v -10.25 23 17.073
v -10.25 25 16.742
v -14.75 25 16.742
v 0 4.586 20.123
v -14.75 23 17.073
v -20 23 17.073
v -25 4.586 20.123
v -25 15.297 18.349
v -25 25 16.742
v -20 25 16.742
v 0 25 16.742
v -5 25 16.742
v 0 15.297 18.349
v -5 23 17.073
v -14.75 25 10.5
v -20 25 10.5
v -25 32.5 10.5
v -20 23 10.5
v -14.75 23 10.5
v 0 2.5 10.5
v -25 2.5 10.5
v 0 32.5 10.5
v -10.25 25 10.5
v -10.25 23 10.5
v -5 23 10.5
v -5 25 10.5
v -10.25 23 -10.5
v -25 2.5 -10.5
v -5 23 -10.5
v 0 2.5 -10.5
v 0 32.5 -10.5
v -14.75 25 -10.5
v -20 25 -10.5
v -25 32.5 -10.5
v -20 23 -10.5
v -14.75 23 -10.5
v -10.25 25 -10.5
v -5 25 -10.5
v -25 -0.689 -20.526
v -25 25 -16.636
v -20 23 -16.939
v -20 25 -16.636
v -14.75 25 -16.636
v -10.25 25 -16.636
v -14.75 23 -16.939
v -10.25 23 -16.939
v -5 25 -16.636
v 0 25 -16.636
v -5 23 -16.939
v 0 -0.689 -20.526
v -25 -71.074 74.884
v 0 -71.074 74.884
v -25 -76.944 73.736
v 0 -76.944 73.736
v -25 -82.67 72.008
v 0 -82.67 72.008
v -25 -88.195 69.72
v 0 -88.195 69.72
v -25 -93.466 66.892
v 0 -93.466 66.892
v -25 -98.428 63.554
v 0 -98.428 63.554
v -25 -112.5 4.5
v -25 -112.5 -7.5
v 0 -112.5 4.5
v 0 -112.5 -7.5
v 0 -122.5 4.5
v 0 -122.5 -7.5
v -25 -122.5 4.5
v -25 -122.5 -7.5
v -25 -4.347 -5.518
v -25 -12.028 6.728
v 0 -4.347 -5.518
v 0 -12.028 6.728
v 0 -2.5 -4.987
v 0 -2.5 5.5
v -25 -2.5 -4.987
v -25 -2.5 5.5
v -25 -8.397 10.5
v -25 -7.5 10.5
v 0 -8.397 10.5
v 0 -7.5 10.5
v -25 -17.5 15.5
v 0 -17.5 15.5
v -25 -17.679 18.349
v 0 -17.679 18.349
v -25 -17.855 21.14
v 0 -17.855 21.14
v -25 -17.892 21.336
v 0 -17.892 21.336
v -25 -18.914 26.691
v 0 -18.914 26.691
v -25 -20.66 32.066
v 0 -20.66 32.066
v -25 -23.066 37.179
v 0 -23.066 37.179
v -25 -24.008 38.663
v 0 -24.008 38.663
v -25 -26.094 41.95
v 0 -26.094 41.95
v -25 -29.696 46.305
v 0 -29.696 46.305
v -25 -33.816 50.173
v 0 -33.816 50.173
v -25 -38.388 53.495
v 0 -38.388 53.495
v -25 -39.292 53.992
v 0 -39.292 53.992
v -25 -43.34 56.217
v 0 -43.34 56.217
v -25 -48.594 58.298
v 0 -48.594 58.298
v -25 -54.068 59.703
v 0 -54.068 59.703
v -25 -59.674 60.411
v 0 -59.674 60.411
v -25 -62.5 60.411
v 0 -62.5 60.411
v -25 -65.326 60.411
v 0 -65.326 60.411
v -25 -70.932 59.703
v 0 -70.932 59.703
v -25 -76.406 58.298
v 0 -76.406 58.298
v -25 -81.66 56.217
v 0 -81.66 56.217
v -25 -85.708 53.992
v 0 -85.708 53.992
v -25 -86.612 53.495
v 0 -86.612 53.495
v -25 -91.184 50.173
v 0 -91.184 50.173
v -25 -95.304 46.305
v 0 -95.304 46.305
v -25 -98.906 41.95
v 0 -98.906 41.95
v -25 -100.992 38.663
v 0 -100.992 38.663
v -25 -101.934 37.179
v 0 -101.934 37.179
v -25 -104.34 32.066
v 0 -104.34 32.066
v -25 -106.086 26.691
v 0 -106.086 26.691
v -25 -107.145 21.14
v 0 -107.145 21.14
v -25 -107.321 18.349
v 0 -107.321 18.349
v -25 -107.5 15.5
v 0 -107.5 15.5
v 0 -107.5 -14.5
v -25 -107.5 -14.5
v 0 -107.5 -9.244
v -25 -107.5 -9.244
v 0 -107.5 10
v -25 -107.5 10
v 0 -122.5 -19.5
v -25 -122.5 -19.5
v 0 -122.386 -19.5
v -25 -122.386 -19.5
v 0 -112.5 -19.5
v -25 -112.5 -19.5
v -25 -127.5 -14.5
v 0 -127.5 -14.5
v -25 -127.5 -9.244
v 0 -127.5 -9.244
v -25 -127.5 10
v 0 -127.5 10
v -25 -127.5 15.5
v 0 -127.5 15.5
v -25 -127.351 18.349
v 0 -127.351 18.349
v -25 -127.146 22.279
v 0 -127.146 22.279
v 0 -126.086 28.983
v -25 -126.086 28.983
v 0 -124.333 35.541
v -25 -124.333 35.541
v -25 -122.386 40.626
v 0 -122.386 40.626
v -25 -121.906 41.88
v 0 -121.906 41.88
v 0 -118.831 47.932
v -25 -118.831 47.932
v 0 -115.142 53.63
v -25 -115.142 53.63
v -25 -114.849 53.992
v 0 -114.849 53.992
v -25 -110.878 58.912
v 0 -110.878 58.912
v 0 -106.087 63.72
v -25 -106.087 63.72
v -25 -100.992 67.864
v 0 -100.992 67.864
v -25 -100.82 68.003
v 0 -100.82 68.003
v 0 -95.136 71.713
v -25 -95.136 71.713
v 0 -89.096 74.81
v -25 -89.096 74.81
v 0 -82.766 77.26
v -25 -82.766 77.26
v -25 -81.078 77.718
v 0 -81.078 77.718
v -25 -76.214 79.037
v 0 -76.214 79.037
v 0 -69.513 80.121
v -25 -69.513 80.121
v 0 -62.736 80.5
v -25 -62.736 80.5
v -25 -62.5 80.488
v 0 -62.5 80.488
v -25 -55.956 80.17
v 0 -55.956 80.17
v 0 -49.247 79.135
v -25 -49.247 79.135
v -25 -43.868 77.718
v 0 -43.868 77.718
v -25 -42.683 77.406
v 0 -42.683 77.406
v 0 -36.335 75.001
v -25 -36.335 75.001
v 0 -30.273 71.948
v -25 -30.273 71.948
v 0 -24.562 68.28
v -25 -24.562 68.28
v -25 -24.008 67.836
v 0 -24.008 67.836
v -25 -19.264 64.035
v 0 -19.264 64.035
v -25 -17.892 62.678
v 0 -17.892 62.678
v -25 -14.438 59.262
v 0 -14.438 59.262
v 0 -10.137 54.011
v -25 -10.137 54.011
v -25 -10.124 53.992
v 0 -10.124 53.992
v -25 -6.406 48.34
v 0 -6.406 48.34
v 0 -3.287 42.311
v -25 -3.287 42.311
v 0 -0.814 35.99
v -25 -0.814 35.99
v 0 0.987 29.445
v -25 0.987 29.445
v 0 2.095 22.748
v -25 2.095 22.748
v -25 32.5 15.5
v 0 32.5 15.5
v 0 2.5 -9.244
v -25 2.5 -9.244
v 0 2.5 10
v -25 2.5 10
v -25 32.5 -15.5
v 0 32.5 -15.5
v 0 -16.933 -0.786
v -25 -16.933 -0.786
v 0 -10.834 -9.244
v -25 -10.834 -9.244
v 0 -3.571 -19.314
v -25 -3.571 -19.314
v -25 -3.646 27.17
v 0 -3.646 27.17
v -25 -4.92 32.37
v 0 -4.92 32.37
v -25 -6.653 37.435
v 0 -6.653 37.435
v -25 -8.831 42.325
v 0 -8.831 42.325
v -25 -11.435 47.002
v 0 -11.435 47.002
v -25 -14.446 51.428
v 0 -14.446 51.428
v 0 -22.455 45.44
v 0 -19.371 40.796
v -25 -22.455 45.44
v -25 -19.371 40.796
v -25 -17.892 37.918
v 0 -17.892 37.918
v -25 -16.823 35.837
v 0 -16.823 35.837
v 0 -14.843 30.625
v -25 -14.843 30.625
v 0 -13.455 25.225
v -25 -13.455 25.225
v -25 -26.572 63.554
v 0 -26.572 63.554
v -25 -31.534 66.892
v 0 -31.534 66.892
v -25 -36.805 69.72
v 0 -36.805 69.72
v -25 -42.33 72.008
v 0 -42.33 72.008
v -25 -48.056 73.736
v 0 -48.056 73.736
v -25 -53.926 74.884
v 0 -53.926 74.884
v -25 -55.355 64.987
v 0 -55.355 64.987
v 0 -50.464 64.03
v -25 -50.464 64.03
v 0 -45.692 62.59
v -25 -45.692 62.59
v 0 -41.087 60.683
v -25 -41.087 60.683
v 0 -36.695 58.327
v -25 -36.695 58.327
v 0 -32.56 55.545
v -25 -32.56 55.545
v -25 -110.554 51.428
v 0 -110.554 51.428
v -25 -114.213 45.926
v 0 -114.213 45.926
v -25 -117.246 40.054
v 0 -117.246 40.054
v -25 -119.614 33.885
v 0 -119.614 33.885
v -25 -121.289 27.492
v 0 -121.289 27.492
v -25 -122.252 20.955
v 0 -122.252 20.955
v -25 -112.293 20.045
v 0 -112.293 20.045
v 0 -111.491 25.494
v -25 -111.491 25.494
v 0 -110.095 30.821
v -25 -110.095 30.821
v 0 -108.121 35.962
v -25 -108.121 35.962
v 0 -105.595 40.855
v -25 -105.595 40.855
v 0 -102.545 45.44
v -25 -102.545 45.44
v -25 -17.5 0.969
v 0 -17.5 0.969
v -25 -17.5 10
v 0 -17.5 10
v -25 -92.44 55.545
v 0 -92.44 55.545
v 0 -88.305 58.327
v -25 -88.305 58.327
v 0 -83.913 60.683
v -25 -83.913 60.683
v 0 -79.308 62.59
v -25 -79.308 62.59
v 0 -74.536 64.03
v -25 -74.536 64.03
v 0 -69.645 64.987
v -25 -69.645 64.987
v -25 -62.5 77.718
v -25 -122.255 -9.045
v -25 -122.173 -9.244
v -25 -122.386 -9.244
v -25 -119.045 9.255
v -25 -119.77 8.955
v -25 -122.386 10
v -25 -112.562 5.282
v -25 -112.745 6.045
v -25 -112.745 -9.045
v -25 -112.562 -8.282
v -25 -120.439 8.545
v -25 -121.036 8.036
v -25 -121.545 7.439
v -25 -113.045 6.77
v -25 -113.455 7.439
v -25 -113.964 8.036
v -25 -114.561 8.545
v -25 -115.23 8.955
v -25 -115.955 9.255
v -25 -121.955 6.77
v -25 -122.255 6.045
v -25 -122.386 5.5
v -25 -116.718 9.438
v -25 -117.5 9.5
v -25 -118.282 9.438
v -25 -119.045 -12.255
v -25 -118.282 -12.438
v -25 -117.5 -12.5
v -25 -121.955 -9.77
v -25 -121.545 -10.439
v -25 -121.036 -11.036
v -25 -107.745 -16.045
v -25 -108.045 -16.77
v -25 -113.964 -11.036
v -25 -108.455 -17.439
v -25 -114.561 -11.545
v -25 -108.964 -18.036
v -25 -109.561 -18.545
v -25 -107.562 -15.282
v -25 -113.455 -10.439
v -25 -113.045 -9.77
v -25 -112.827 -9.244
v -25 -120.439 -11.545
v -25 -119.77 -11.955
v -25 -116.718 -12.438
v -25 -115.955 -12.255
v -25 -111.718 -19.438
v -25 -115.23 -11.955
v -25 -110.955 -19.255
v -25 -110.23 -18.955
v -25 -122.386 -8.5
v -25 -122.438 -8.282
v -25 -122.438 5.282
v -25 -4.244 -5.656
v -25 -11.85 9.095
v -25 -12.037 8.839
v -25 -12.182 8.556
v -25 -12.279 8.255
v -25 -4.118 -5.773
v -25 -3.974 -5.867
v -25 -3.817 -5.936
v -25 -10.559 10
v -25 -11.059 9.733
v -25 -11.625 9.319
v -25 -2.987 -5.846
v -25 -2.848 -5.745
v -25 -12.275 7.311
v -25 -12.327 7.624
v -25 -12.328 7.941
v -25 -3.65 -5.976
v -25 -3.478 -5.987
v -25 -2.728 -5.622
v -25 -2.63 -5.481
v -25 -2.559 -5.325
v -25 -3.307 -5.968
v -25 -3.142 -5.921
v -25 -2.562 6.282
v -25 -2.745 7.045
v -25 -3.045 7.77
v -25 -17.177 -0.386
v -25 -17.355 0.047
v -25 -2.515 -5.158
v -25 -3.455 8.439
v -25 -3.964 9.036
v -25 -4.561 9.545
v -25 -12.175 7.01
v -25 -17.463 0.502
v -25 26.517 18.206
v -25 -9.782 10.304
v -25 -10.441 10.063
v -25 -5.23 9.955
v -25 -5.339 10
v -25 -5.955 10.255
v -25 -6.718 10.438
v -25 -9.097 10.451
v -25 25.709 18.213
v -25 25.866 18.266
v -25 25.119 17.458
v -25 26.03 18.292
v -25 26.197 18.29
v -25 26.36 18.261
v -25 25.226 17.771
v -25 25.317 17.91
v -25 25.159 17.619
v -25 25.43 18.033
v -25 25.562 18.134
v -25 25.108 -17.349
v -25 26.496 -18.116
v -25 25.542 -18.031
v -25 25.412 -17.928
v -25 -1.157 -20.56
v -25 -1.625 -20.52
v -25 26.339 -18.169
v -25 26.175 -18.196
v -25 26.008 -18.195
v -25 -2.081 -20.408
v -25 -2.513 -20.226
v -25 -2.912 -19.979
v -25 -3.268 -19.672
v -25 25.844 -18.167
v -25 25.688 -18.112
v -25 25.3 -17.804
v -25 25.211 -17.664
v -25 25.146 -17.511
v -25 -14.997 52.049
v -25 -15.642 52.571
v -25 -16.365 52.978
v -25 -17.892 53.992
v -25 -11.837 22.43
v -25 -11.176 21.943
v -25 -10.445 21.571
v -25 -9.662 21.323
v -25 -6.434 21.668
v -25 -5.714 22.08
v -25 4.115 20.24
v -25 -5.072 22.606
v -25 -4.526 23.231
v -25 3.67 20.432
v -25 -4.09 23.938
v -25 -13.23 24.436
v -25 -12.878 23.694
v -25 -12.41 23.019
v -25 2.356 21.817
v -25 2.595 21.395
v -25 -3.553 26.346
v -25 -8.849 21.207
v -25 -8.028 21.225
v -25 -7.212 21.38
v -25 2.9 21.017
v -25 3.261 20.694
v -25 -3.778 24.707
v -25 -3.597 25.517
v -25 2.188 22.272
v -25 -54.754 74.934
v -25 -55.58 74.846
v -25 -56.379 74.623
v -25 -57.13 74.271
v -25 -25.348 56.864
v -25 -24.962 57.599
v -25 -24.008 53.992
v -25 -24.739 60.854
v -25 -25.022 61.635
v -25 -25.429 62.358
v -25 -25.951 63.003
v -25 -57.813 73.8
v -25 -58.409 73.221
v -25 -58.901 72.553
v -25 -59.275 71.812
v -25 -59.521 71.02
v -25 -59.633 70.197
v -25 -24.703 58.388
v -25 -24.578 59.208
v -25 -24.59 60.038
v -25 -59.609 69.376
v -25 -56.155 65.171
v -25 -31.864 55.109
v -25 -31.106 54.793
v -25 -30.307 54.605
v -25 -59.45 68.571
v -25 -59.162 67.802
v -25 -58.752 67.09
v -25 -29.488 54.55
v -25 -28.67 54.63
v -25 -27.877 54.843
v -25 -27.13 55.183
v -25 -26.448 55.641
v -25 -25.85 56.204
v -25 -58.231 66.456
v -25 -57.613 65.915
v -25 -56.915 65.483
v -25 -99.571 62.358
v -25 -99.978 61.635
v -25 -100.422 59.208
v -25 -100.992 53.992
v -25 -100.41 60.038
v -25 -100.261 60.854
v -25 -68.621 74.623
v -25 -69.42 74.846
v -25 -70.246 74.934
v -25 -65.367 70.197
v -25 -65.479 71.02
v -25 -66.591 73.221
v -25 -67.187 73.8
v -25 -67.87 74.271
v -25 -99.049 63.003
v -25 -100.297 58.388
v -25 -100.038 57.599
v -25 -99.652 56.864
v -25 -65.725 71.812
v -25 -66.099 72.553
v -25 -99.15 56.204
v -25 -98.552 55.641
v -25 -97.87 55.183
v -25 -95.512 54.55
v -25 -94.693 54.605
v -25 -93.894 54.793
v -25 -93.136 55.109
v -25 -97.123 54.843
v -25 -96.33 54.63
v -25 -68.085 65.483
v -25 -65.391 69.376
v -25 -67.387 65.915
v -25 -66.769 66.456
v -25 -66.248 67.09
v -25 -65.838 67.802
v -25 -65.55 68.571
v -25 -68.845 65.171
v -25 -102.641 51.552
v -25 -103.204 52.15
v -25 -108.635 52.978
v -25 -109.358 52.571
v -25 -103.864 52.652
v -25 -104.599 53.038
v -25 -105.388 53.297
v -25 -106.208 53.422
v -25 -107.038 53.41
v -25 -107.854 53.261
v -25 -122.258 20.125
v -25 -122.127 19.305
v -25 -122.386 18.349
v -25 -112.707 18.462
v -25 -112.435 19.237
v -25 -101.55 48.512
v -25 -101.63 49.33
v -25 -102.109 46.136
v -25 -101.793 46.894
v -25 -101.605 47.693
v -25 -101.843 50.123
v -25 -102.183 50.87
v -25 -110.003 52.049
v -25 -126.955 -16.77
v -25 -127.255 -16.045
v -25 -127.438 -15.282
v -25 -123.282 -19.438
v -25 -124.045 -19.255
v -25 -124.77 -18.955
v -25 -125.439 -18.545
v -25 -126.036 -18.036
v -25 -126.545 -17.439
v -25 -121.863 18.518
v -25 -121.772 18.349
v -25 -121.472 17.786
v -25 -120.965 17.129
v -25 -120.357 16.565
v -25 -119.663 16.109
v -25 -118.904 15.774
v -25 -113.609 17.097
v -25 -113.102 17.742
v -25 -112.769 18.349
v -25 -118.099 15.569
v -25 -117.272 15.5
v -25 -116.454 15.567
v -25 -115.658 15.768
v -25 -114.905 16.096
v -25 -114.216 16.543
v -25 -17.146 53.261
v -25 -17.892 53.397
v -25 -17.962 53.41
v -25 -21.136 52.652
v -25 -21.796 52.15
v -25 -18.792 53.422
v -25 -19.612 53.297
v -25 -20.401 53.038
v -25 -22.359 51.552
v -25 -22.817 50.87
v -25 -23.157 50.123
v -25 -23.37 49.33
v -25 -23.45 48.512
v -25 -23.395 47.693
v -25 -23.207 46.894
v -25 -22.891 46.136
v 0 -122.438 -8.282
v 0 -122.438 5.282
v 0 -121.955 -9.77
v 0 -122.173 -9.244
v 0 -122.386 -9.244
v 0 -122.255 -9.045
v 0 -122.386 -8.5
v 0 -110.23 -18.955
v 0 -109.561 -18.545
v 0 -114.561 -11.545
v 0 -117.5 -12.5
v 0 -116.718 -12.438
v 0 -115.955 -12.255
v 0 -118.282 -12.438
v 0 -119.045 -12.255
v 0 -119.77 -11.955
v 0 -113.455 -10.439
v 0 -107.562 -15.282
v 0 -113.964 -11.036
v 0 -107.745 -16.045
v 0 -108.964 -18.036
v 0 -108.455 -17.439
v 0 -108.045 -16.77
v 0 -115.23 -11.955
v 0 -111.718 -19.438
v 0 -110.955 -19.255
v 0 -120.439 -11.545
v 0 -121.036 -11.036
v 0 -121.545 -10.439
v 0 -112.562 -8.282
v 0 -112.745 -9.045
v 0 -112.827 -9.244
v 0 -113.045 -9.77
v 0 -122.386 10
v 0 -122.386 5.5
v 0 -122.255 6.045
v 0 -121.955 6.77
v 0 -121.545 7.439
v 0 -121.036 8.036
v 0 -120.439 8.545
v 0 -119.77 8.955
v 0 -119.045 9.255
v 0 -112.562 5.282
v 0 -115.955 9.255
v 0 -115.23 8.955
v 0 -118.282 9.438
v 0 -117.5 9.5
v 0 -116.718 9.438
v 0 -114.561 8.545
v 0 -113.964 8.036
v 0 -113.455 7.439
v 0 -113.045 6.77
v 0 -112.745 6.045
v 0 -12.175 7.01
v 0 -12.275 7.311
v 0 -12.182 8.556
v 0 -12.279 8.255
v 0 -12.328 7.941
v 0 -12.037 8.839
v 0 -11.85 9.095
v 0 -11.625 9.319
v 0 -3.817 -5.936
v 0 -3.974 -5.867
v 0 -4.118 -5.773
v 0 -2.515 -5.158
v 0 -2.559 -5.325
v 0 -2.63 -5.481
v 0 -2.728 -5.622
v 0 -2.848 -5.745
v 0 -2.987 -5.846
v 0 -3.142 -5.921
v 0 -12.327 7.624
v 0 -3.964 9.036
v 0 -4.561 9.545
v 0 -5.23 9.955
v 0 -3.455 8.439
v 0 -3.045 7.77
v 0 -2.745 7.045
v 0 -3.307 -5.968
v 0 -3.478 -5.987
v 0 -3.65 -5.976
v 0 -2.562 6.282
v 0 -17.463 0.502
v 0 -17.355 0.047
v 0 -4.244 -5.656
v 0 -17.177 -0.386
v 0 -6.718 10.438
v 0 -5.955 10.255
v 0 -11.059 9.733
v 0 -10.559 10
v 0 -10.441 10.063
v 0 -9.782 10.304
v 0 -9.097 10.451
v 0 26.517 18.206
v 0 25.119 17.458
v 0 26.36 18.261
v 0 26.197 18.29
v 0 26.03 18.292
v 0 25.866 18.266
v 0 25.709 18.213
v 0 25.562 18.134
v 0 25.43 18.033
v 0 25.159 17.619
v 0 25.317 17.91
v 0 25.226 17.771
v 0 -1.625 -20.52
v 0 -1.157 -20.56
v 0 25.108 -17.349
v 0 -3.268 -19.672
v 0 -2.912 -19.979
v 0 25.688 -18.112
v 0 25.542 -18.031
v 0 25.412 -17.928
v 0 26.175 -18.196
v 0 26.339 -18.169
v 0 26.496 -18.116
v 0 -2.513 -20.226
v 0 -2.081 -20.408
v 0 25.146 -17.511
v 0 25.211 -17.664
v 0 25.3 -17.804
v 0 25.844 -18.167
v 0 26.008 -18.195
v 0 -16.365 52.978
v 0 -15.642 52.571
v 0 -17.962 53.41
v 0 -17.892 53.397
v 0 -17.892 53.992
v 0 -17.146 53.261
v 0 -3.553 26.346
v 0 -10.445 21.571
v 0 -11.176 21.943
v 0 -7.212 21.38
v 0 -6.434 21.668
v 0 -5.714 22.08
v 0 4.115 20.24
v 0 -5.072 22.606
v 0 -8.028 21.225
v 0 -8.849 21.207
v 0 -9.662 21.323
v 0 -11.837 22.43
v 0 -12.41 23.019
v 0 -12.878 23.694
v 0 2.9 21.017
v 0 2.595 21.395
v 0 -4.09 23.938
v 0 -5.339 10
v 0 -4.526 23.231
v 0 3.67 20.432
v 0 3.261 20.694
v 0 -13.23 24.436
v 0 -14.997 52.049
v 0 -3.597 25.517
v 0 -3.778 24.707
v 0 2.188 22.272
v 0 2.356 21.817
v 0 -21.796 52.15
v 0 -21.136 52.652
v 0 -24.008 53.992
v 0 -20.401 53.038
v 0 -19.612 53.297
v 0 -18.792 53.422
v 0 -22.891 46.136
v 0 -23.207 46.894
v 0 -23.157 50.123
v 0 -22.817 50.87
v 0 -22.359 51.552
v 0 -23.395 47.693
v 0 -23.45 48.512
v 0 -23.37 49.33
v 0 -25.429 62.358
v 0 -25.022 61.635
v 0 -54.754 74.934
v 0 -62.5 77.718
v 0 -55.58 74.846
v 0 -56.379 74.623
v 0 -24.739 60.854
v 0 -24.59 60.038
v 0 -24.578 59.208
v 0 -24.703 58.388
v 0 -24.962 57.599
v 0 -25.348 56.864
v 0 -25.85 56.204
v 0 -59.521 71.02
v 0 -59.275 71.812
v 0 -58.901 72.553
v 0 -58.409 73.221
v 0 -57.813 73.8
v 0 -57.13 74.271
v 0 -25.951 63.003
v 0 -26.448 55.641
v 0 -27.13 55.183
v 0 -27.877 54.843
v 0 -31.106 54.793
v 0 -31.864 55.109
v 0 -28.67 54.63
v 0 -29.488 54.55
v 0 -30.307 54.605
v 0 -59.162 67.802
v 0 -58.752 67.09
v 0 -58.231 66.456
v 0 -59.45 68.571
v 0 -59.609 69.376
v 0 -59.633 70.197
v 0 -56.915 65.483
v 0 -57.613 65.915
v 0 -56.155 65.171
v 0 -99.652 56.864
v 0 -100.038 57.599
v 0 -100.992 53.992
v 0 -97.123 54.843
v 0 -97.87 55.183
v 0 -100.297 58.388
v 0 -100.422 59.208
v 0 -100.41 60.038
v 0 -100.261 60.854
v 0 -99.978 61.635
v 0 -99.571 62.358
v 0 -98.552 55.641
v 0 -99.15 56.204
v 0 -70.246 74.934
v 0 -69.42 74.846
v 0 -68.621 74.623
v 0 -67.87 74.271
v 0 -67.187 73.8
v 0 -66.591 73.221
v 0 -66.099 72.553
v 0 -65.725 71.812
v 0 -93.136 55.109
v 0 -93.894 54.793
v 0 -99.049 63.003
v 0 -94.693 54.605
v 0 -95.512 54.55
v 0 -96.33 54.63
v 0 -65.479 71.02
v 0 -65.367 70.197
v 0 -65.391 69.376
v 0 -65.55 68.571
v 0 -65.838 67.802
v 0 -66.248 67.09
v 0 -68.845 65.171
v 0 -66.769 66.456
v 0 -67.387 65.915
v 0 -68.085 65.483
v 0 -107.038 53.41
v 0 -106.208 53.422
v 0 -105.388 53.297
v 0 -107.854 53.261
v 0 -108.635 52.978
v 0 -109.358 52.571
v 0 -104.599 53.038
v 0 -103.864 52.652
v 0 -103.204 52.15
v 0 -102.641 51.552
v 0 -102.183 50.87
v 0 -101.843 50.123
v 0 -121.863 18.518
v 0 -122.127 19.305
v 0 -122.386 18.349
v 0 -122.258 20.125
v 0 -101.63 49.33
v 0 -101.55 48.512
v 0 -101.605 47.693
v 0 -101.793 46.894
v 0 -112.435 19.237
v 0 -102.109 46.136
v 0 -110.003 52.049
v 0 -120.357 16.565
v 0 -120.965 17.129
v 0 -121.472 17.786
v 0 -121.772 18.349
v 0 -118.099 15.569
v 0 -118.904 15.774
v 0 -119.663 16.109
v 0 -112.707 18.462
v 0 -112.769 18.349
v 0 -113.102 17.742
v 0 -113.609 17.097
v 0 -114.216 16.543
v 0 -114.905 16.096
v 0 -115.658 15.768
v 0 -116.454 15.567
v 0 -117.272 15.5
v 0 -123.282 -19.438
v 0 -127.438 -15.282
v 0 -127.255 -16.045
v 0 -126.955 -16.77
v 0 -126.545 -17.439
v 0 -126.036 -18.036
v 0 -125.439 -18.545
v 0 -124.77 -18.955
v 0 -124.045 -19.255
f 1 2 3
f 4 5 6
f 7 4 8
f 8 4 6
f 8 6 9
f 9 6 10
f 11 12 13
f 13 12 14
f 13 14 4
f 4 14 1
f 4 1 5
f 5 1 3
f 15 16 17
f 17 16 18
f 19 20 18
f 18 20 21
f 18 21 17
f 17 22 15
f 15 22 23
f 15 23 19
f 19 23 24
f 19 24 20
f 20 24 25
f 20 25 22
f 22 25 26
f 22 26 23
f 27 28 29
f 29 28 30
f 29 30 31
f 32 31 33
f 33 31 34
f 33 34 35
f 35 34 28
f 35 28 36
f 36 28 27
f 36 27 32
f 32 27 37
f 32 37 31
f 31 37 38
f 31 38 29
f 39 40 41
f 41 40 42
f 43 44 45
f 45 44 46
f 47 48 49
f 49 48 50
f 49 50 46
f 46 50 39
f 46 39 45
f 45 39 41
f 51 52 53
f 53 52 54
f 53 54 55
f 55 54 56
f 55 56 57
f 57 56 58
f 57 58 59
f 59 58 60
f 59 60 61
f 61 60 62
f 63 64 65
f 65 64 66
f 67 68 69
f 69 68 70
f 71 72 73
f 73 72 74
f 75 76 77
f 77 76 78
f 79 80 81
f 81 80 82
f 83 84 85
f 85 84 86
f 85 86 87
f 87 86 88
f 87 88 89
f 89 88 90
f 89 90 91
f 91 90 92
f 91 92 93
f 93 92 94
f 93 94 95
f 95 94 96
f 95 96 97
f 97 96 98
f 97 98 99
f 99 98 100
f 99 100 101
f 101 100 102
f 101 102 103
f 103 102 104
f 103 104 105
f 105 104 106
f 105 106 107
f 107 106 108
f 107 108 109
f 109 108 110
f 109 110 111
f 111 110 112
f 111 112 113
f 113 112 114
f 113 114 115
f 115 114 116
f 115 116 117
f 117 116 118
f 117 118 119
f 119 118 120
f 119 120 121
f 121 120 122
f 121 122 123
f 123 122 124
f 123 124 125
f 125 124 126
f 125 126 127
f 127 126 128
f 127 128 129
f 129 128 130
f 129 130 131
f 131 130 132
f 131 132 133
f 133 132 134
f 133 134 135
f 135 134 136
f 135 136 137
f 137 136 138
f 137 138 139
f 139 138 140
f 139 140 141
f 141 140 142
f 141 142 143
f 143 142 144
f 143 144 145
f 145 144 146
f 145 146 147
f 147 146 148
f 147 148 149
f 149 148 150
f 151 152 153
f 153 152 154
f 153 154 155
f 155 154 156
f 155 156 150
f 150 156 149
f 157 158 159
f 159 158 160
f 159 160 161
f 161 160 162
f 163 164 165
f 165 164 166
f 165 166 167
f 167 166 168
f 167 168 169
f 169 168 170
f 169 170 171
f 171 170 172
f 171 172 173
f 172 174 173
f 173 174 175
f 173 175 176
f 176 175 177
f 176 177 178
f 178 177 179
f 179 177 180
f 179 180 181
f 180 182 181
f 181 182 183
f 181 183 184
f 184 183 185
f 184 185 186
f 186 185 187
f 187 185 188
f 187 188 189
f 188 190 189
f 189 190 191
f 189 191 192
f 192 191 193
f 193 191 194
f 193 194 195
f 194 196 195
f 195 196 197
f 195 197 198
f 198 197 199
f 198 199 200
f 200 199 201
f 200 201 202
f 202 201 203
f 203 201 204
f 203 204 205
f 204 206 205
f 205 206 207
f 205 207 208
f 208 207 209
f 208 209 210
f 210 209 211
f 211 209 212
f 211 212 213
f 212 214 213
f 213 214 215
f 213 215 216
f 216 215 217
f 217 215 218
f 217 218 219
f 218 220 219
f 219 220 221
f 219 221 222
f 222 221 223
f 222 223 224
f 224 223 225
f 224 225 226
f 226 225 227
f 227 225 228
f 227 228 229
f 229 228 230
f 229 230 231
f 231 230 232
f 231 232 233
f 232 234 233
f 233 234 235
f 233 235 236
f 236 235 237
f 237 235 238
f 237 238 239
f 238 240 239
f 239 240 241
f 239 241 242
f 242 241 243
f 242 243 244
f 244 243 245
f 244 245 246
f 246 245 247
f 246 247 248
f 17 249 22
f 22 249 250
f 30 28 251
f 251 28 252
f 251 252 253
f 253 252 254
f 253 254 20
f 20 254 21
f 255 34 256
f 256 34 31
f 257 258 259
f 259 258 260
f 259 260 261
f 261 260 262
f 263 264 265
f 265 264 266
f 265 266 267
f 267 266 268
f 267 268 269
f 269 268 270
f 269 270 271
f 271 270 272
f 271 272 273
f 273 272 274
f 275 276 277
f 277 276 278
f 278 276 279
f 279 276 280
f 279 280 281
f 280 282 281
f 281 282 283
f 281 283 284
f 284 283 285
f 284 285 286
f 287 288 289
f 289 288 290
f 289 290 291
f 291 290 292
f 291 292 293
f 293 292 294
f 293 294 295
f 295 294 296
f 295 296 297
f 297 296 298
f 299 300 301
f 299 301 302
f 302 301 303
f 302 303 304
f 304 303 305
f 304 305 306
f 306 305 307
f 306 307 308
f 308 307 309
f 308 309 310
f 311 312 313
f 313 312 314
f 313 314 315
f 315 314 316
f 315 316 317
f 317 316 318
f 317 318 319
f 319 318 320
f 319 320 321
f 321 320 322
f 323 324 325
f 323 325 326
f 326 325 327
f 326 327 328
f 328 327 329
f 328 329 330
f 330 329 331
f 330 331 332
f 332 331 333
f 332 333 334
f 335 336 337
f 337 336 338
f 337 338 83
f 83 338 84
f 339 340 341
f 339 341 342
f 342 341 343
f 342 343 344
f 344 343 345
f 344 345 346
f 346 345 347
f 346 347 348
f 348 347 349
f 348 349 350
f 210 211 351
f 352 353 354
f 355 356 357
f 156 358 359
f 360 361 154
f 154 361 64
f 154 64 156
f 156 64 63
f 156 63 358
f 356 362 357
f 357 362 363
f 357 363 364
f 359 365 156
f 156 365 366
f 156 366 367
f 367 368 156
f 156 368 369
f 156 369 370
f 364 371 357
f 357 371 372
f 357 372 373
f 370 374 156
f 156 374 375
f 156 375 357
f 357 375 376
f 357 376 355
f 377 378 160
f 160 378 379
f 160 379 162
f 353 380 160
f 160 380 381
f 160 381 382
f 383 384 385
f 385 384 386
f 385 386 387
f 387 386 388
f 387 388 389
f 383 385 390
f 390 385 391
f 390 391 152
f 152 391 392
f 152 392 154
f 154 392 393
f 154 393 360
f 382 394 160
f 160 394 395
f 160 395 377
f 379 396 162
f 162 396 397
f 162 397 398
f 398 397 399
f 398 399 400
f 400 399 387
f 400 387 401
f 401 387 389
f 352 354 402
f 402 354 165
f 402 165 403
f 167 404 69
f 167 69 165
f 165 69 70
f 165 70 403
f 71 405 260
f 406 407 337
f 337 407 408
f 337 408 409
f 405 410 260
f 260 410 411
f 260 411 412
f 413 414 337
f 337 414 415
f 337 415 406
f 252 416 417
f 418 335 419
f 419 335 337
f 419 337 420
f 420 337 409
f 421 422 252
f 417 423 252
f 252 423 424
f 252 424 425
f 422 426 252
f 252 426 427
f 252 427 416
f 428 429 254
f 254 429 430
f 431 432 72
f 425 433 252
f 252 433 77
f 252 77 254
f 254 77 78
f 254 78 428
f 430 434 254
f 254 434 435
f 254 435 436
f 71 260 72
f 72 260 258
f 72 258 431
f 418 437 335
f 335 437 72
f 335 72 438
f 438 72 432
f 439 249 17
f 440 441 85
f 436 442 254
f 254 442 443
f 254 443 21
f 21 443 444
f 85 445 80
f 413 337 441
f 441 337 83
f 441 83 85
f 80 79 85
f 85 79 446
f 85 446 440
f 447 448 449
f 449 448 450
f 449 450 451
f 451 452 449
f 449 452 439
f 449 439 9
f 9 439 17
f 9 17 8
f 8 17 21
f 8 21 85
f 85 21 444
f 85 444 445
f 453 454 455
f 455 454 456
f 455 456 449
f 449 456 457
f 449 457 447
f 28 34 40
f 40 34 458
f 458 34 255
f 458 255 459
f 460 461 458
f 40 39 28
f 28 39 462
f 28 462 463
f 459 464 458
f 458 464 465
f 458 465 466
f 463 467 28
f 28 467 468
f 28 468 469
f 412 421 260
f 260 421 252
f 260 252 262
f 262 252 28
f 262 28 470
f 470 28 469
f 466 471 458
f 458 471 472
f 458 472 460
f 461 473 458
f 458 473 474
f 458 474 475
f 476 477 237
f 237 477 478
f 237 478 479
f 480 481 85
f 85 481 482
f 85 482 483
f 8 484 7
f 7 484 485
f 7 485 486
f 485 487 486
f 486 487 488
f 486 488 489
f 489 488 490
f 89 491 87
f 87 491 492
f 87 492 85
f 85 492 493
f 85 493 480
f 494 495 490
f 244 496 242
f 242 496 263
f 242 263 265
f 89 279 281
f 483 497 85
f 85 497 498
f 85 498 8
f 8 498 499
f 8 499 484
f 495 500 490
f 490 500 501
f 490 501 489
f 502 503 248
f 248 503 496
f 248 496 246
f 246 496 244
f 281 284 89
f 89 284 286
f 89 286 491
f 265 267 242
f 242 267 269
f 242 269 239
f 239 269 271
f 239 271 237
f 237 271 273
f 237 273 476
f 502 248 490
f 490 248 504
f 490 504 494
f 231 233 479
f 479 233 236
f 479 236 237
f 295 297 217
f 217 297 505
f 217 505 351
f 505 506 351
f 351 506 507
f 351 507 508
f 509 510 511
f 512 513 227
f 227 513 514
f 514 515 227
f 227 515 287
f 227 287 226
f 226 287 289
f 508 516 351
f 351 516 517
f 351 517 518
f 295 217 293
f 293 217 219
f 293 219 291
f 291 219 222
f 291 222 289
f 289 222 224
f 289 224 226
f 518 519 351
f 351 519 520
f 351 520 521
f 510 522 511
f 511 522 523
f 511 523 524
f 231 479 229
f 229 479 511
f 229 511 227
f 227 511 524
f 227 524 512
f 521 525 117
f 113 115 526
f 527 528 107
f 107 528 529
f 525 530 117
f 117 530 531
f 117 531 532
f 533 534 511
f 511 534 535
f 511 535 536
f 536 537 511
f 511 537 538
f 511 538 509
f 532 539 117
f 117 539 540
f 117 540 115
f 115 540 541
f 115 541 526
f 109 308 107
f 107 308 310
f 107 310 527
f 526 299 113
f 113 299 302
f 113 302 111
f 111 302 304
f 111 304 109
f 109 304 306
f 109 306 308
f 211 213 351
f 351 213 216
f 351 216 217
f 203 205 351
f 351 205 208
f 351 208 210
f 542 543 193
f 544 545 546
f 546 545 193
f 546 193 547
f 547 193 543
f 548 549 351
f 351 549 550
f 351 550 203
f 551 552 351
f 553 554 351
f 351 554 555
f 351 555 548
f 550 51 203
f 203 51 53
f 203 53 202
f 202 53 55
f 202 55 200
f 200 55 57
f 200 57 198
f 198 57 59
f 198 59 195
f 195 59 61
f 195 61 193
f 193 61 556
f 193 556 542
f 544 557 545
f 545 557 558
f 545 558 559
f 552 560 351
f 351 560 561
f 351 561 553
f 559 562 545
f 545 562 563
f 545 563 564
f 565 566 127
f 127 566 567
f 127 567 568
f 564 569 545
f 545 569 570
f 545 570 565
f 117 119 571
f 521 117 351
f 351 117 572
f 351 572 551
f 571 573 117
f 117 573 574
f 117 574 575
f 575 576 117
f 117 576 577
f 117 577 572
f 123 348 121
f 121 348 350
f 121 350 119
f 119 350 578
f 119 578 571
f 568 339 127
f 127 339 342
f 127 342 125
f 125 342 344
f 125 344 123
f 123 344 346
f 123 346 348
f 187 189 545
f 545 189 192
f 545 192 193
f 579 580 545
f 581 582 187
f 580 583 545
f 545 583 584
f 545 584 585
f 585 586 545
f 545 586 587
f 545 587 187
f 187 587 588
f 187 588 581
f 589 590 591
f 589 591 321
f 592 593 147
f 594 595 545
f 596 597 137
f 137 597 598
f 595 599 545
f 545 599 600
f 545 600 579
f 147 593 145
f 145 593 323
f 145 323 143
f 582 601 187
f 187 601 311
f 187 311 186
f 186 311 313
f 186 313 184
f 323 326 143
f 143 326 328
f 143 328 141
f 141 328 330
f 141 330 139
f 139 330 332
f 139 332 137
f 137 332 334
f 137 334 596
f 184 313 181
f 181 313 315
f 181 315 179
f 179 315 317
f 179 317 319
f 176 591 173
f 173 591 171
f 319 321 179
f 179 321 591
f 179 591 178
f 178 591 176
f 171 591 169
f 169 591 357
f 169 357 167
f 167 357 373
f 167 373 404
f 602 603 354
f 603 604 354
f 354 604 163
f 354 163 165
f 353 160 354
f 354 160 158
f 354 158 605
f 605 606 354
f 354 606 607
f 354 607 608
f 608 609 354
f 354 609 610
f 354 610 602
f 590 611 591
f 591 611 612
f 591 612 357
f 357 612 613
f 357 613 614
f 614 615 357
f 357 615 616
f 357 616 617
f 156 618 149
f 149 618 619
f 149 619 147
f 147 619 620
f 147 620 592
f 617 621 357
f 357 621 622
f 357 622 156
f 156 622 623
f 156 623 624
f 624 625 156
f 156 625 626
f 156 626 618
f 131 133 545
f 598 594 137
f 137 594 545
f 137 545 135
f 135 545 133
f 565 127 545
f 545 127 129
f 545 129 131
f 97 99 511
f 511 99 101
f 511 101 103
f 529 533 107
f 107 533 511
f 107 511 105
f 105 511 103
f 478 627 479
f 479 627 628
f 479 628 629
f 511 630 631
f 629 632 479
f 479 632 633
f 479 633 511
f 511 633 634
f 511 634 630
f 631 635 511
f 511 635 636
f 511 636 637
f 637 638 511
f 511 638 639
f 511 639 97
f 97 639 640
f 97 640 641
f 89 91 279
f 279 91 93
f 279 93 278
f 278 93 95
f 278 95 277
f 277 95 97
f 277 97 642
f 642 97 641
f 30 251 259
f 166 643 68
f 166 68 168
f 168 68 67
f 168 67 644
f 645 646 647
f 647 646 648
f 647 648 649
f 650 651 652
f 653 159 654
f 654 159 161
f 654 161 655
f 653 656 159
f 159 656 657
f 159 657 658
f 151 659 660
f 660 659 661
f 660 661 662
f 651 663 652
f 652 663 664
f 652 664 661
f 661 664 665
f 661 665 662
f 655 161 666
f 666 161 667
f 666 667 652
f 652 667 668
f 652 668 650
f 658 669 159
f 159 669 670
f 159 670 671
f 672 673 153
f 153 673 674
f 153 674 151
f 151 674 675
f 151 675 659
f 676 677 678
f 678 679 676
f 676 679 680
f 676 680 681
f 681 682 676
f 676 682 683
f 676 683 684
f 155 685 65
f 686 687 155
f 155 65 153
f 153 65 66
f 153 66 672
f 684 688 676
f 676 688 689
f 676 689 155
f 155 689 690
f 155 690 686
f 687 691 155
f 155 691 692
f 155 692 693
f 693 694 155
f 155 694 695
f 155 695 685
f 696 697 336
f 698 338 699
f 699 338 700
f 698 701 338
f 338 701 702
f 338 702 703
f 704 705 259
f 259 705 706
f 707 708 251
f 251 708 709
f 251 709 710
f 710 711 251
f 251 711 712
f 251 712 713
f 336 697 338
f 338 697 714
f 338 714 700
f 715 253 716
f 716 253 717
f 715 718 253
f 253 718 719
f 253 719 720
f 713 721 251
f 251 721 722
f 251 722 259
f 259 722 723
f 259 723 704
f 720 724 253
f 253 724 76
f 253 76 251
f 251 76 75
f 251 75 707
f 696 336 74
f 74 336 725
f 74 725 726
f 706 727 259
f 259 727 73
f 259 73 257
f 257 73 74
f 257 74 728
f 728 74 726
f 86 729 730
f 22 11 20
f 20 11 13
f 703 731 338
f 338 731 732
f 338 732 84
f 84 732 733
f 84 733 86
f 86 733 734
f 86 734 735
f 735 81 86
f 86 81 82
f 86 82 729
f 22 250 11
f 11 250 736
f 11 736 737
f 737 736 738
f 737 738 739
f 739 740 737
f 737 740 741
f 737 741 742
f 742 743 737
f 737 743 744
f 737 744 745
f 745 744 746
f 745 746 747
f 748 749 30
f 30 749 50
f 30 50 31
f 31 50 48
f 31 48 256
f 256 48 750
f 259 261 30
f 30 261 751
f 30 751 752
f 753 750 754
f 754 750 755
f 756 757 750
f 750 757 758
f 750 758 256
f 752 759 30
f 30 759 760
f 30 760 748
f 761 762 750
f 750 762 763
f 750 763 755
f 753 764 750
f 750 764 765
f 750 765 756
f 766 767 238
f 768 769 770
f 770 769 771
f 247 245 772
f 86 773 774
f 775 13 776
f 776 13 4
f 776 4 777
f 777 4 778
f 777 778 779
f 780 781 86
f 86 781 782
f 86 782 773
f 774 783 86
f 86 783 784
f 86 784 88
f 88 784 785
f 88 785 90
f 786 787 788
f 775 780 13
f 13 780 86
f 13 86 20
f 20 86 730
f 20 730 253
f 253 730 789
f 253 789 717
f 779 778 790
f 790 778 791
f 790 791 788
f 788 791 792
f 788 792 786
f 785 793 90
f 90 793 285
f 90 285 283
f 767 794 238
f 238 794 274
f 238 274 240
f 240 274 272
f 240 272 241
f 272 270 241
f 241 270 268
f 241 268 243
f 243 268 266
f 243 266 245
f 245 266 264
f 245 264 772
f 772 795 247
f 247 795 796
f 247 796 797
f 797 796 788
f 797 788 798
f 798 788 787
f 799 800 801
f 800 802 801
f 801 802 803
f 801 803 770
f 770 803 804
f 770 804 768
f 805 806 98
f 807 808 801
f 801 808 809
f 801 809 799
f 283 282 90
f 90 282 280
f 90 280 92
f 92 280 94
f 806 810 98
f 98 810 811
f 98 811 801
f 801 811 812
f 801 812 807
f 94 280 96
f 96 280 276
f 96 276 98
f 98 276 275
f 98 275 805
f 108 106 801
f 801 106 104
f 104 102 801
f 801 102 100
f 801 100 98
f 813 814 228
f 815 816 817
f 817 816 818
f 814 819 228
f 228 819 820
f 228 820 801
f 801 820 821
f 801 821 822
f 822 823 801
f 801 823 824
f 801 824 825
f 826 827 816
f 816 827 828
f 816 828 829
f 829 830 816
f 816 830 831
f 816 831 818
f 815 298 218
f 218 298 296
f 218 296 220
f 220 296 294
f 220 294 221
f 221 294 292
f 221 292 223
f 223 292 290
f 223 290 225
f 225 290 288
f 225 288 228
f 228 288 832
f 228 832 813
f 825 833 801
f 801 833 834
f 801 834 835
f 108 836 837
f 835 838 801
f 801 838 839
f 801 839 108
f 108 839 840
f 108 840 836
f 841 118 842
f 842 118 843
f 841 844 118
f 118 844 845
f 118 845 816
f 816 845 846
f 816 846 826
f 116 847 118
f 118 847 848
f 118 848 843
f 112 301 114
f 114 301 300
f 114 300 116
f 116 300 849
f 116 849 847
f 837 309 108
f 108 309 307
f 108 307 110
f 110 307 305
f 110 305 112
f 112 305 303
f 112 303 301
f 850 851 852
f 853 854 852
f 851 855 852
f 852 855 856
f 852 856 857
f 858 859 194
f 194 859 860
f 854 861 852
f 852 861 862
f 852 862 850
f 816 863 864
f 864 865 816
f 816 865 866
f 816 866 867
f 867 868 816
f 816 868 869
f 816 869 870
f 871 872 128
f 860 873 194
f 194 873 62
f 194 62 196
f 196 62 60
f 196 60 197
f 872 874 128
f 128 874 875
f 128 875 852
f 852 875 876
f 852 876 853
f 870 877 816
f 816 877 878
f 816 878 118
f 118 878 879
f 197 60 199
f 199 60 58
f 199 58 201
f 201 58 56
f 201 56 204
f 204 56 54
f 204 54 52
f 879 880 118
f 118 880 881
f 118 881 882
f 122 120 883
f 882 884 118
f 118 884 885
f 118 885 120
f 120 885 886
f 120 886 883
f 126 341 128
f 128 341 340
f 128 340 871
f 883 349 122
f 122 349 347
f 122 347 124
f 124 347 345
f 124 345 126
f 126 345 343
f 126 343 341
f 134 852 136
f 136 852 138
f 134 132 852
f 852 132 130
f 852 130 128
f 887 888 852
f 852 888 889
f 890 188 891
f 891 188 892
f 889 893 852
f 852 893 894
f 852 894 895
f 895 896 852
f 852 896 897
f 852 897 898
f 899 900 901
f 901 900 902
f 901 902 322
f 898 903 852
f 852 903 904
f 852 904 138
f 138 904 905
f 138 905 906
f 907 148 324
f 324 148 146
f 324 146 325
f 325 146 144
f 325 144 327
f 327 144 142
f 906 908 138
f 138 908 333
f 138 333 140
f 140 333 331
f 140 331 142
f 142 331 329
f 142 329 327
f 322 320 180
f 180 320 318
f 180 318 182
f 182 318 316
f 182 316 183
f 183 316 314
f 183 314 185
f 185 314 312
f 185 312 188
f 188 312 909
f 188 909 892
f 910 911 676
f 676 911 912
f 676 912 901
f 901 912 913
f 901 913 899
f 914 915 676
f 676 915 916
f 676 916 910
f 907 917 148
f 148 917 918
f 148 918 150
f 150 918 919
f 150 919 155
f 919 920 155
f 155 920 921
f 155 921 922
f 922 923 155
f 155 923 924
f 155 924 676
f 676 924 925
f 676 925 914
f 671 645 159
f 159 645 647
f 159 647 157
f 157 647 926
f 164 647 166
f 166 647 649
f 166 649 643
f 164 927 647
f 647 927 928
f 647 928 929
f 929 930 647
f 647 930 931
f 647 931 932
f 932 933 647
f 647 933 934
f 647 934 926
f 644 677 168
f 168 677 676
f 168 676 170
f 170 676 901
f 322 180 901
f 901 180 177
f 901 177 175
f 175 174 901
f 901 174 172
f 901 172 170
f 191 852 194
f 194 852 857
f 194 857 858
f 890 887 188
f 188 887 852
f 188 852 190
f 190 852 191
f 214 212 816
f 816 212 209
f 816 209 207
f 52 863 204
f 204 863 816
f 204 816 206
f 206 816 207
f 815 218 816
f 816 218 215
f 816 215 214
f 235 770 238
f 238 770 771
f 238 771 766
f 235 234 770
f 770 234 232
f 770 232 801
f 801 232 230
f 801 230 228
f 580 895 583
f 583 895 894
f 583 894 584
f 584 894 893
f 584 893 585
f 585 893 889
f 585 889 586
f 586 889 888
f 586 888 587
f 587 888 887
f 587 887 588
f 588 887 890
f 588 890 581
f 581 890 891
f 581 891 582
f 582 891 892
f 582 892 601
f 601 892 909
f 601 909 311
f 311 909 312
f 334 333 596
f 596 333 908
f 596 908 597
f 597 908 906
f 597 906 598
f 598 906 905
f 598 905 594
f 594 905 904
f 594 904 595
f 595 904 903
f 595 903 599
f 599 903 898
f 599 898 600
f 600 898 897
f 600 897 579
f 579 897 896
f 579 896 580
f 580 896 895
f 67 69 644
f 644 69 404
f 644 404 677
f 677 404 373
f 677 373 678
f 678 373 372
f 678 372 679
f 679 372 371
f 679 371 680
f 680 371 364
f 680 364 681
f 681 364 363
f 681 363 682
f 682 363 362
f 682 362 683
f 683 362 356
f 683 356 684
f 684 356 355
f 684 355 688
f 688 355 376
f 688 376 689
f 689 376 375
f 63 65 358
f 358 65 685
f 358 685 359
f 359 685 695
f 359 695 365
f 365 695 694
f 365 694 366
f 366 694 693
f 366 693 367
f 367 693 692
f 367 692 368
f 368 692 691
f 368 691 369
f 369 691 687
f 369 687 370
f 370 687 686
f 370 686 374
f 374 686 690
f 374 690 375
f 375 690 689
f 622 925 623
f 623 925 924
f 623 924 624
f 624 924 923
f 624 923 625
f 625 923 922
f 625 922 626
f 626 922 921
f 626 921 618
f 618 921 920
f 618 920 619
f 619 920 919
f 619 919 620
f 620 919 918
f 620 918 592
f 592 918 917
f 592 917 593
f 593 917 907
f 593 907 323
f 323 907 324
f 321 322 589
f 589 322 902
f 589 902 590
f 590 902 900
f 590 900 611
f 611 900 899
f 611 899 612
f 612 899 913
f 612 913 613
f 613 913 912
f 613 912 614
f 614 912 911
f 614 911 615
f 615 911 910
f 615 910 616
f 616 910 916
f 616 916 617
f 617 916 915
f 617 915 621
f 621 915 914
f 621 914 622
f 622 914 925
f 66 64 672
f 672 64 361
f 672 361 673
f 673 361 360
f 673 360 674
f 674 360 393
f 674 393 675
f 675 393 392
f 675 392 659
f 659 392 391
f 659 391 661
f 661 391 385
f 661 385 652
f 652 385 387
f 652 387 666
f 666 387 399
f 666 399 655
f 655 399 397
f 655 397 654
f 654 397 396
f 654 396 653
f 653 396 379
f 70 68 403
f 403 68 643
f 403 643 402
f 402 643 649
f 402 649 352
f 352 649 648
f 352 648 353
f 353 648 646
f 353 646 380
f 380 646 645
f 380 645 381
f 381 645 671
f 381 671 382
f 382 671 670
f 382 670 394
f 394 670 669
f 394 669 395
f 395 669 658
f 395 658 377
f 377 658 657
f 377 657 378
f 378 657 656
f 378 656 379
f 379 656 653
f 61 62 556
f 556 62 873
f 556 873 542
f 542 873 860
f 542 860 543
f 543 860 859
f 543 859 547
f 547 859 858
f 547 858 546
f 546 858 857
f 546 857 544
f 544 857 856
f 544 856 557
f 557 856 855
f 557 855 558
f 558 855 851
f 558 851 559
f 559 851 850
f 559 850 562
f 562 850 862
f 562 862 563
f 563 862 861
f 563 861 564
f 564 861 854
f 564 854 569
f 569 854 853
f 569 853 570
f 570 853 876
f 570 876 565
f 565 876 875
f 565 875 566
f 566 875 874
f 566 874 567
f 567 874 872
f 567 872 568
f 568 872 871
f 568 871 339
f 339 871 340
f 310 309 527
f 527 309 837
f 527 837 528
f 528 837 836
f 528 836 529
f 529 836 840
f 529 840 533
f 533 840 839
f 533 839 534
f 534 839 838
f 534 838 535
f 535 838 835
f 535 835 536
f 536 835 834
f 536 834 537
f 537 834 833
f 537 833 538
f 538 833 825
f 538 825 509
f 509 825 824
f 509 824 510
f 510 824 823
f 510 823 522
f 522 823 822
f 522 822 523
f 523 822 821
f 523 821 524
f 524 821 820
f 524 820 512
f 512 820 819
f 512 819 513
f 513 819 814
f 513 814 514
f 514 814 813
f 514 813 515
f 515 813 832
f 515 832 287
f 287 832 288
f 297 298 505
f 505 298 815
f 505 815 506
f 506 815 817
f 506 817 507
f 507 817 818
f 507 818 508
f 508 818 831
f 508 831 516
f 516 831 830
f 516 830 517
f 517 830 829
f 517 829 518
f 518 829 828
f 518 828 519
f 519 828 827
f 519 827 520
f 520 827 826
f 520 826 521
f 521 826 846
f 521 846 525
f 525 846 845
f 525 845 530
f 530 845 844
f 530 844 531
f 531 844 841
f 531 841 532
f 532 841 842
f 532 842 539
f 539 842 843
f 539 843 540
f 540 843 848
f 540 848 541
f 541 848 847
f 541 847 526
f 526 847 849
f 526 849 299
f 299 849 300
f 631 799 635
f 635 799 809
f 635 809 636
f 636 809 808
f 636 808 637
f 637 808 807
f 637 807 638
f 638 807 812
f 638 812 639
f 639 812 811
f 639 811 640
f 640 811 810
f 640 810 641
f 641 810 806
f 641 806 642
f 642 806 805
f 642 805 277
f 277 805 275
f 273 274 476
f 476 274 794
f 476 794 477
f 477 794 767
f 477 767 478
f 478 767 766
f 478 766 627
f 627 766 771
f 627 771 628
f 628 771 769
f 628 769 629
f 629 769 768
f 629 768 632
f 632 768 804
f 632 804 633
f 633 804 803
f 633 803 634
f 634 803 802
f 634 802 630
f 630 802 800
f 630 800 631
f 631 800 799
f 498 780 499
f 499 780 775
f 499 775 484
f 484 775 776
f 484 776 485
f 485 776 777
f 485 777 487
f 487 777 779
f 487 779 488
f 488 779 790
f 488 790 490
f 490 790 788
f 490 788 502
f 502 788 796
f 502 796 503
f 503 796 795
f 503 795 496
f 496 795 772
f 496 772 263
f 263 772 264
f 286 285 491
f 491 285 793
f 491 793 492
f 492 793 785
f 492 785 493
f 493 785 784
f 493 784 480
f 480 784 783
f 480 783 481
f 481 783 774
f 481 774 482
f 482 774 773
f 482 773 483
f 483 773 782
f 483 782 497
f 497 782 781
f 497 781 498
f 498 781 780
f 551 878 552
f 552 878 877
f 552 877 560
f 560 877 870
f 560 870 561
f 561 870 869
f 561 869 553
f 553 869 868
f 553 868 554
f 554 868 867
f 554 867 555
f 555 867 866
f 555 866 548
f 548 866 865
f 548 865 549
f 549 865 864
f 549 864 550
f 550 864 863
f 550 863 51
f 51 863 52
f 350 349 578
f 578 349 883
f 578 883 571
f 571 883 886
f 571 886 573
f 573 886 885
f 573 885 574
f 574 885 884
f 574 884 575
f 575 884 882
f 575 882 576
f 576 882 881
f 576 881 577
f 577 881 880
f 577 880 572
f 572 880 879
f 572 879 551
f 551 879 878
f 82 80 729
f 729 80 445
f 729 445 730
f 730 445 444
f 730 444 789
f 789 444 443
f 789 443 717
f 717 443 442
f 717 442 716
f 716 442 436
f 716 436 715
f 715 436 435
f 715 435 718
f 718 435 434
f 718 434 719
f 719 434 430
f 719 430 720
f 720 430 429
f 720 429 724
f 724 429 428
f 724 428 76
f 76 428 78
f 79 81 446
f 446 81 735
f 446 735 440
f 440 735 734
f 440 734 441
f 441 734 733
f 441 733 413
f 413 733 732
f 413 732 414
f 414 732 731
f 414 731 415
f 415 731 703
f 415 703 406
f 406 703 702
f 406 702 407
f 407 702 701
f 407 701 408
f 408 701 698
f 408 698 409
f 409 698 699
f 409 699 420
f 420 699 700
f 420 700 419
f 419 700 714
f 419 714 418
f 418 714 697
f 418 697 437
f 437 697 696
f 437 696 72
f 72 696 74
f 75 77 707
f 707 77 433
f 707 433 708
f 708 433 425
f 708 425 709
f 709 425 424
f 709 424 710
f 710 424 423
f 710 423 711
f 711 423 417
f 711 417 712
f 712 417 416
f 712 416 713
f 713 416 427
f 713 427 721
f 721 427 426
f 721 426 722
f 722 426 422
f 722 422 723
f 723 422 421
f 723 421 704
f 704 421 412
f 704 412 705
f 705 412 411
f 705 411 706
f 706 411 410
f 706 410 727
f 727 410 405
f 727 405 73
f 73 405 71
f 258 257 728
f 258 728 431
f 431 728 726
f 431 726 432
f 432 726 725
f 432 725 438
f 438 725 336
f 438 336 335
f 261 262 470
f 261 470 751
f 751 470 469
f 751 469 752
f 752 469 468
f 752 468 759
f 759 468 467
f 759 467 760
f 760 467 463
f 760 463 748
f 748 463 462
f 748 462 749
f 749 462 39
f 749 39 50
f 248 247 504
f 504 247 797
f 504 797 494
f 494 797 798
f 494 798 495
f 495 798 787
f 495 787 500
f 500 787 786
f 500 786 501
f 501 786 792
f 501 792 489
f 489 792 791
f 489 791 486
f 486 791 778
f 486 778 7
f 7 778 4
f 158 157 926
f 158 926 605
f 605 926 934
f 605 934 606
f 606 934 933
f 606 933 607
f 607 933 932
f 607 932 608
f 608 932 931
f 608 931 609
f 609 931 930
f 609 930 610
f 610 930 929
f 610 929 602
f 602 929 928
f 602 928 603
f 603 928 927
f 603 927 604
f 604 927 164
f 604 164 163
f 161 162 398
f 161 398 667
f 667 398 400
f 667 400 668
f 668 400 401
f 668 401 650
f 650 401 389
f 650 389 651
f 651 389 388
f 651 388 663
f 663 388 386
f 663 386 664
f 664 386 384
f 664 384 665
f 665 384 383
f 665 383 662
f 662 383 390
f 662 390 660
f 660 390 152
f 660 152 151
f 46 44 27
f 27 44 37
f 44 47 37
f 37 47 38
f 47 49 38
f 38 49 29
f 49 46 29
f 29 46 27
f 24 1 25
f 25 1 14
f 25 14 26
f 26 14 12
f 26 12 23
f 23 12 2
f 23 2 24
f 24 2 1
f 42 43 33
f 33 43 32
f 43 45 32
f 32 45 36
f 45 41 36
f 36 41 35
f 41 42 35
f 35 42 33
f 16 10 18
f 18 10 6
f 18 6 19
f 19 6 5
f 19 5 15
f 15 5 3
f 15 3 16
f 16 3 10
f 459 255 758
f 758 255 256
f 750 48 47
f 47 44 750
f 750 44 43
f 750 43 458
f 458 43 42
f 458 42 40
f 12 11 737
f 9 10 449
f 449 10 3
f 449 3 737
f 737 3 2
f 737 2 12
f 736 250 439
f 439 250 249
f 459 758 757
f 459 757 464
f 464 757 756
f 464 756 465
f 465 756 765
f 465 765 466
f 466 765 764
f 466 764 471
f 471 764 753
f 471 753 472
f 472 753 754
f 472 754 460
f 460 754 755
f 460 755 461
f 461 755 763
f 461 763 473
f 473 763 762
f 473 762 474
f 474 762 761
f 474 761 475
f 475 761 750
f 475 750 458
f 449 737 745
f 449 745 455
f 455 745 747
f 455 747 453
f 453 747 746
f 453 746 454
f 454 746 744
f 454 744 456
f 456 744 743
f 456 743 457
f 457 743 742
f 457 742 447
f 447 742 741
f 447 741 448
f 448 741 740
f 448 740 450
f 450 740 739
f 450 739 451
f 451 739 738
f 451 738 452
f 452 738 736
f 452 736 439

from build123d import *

# Parameters (mm, degrees)
SKETCH1_W               = 22
SKETCH1_H               = 10
BOSS_EXTRUDE1_DEPTH     = 25
FILLET1_R               = 5
FILLET2_R               = 5
FILLET3_R               = 5
FILLET4_R               = 5
FILLET5_R               = 2
FILLET6_R               = 1
FILLET7_R               = 3
FILLET8_R               = 5
CUT_EXTRUDE1_DEPTH      = 35
CUT_EXTRUDE1_DEPTH_BACK = 25
SKETCH2_W               = 5.25
SKETCH2_H               = 2
BOSS_EXTRUDE2_DEPTH     = 25
FILLET9_R               = 1


# Some blends are built 0.0001 mm under size
with BuildPart() as part:
    # Sketch1 → Boss-Extrude1 (new body)
    with BuildSketch(Plane(origin=(0, 0, 0), x_dir=(0, 0, -1), z_dir=(1, 0, 0))):
        with BuildLine():
            ThreePointArc((-15.5, -17.5), (-60.5, -62.5), (-15.5, -107.5))
            Line((-15.5, -107.5), (19.5, -107.5))
            Line((19.5, -107.5), (19.5, -127.5))
            Line((19.5, -127.5), (-15.5, -127.5))
            ThreePointArc((-15.5, -127.5), (-80.4518339, -65.001853916), (-20.5, 2.307406984))
            Line((-20.5, 2.307406984), (-15.5, 32.5))
            Line((-15.5, 32.5), (-10.5, 32.5))
            Line((-10.5, 32.5), (-10.5, 2.5))
            Line((-10.5, 2.5), (10.5, 2.5))
            Line((10.5, 2.5), (10.5, 32.5))
            Line((10.5, 32.5), (15.5, 32.5))
            Line((15.5, 32.5), (20.8, -2.5))
            Line((20.8, -2.5), (0, -17.5))
            Line((0, -17.5), (-15.5, -17.5))
        make_face()
        with BuildLine():
            ThreePointArc((-55.647836382, -107.088689529), (-37.002076973, -118.51482559), (-15.5, -122.5))
            Line((-15.5, -122.5), (-15.5, -112.5))
            ThreePointArc((-15.5, -112.5), (-33.418397477, -109.179021325), (-48.956530318, -99.657241274))
            Line((-48.956530318, -99.657241274), (-55.647836382, -107.088689529))
        make_face(mode=Mode.SUBTRACT)
        with BuildLine():
            ThreePointArc((-60.088689529, -22.352163618), (-70.932771951, -39.538994058), (-75.417772085, -59.359842625))
            Line((-75.417772085, -59.359842625), (-65.431476738, -59.883202188))
            ThreePointArc((-65.431476738, -59.883202188), (-61.693976626, -43.365828382), (-52.657241274, -29.043469682))
            Line((-52.657241274, -29.043469682), (-60.088689529, -22.352163618))
        make_face(mode=Mode.SUBTRACT)
        with BuildLine():
            ThreePointArc((-21.771707796, -2.828686278), (-39.904198585, -7.687272541), (-55.647836382, -17.911310471))
            Line((-55.647836382, -17.911310471), (-48.956530318, -25.342758726))
            ThreePointArc((-48.956530318, -25.342758726), (-35.836832154, -16.822727118), (-20.726423163, -12.773905232))
            Line((-20.726423163, -12.773905232), (-21.771707796, -2.828686278))
        make_face(mode=Mode.SUBTRACT)
        Polygon((8.463652775, -2.5), (-7.917479229, -12.773905232), (-10.5, -12.773905232), (-10.5, -2.5), align=None, mode=Mode.SUBTRACT)
        with Locations((1.5, -117.5)):
            Rectangle(SKETCH1_W, SKETCH1_H, mode=Mode.SUBTRACT)
        with BuildLine():
            Line((-65.431476738, -65.116797812), (-75.417772085, -65.640157375))
            ThreePointArc((-75.417772085, -65.640157375), (-70.932771951, -85.461005942), (-60.088689529, -102.647836382))
            Line((-60.088689529, -102.647836382), (-52.657241274, -95.956530318))
            ThreePointArc((-52.657241274, -95.956530318), (-61.693976626, -81.634171618), (-65.431476738, -65.116797812))
        make_face(mode=Mode.SUBTRACT)
    extrude(amount=-BOSS_EXTRUDE1_DEPTH)

    # Fillet1
    fillet1_edges = [part.edges().sort_by_distance(p)[0] for p in [
        (-12.5, -99.657241274, 48.956530318),
        (-12.5, -112.5, 9.5),
        (-12.5, -122.5, 9.5),
        (-12.5, -122.5, 15.5),
        (-12.5, -122.5, -12.5),
        (-12.5, -112.5, -12.5),
        (-12.5, -107.088689529, 55.647836382),
        (-12.5, -112.5, 15.5),
        (-12.5, -95.956530318, 52.657241274),
        (-12.5, -102.647836382, 60.088689529),
        (-12.5, -22.352163618, 60.088689529),
        (-12.5, -29.043469682, 52.657241274),
        (-12.5, -59.883202188, 65.431476738),
        (-12.5, -59.359842625, 75.417772085),
        (-12.5, -17.911310471, 55.647836382),
        (-12.5, -25.342758726, 48.956530318),
        (-12.5, -12.773905232, 20.726423163),
        (-12.5, -2.828686278, 21.771707796),
    ]]
    fillet(fillet1_edges, radius=FILLET1_R - 0.0001)  # a hair under: the kernel refuses the full size

    # Fillet2
    fillet2_edges = [part.edges().sort_by_distance(p)[0] for p in [
        (-12.5, -65.116797812, 65.431476738),
        (-12.5, -65.640157375, 75.417772085),
    ]]
    fillet(fillet2_edges, radius=FILLET2_R - 0.0001)  # a hair under: the kernel refuses the full size

    # Fillet3
    fillet3_edges = [part.edges().sort_by_distance(p)[0] for p in [
        (-12.5, -2.5, 10.5),
    ]]
    fillet(fillet3_edges, radius=FILLET3_R)

    # Fillet4
    # the kernel refuses this fillet: 5 mm, written as the material it adds along each edge
    with BuildSketch(Plane(origin=(0, -12.773905232, 10.5), x_dir=(0, 1, 0), z_dir=(-1, 0, 0))) as fillet4_piece_1:
        with BuildLine():
            CenterArc((4.376733277, 5), FILLET4_R, 208.91397124, 61.08602876)
            Line((0, 2.582520771), (-0.087534666, 2.534171187))
            ThreePointArc((-0.087534666, 2.534171187), (-0.1, 1.291260386), (-0.1, 0))
            Line((-0.1, 0), (0, -0.1))
            Line((0, -0.1), (4.376733277, -0.1))
            Line((4.376733277, -0.1), (4.376733277, 0))
        make_face()
    extrude(amount=25)

    # Fillet5
    fillet5_edges = [part.edges().sort_by_distance(p)[0] for p in [
        (-12.5, -12.773905232, 7.917479229),
    ]]
    fillet(fillet5_edges, radius=FILLET5_R)

    # Fillet6
    fillet6_edges = [part.edges().sort_by_distance(p)[0] for p in [
        (-12.5, -2.5, -8.463652775),
    ]]
    fillet(fillet6_edges, radius=FILLET6_R)

    # Fillet7
    fillet7_edges = [part.edges().sort_by_distance(p)[0] for p in [
        (-12.5, 2.307406984, 20.5),
        (-12.5, -2.5, -20.8),
        (-12.5, -17.5, 0),
    ]]
    fillet(fillet7_edges, radius=FILLET7_R)

    # Fillet8
    fillet8_edges = [part.edges().sort_by_distance(p)[0] for p in [
        (-12.5, -107.5, -19.5),
        (-12.5, -127.5, -19.5),
    ]]
    fillet(fillet8_edges, radius=FILLET8_R)

    # Sketch2 → Cut-Extrude1 (cut, two sides: drawn at the far end of the back side and taken through both)
    with BuildSketch(Plane.XY.offset(-10.5).offset(-CUT_EXTRUDE1_DEPTH_BACK)):
        with Locations((-17.375, 24)):
            Rectangle(SKETCH2_W, SKETCH2_H)
        with Locations((-7.625, 24)):
            Rectangle(SKETCH2_W, SKETCH2_H)
    extrude(amount=CUT_EXTRUDE1_DEPTH + CUT_EXTRUDE1_DEPTH_BACK, mode=Mode.SUBTRACT)

    # Sketch3 → Boss-Extrude2 (add)
    with BuildSketch(Plane(origin=(0, 0, 0), x_dir=(0, 0, -1), z_dir=(1, 0, 0))):
        Polygon((16.635714286, 25), (18.635714286, 25.302857143), (15.5, 32.5), align=None)
        Polygon((-16.742026479, 25), (-18.742026479, 25.331207061), (-15.5, 32.5), align=None)
    extrude(amount=-BOSS_EXTRUDE2_DEPTH)

    # Fillet9
    fillet9_edges = [part.edges().sort_by_distance(p)[0] for p in [
        (-12.5, 25.302857143, -18.635714286),
        (-12.5, 25.331207061, 18.742026479),
    ]]
    fillet(fillet9_edges, radius=FILLET9_R)


solid = part.part
